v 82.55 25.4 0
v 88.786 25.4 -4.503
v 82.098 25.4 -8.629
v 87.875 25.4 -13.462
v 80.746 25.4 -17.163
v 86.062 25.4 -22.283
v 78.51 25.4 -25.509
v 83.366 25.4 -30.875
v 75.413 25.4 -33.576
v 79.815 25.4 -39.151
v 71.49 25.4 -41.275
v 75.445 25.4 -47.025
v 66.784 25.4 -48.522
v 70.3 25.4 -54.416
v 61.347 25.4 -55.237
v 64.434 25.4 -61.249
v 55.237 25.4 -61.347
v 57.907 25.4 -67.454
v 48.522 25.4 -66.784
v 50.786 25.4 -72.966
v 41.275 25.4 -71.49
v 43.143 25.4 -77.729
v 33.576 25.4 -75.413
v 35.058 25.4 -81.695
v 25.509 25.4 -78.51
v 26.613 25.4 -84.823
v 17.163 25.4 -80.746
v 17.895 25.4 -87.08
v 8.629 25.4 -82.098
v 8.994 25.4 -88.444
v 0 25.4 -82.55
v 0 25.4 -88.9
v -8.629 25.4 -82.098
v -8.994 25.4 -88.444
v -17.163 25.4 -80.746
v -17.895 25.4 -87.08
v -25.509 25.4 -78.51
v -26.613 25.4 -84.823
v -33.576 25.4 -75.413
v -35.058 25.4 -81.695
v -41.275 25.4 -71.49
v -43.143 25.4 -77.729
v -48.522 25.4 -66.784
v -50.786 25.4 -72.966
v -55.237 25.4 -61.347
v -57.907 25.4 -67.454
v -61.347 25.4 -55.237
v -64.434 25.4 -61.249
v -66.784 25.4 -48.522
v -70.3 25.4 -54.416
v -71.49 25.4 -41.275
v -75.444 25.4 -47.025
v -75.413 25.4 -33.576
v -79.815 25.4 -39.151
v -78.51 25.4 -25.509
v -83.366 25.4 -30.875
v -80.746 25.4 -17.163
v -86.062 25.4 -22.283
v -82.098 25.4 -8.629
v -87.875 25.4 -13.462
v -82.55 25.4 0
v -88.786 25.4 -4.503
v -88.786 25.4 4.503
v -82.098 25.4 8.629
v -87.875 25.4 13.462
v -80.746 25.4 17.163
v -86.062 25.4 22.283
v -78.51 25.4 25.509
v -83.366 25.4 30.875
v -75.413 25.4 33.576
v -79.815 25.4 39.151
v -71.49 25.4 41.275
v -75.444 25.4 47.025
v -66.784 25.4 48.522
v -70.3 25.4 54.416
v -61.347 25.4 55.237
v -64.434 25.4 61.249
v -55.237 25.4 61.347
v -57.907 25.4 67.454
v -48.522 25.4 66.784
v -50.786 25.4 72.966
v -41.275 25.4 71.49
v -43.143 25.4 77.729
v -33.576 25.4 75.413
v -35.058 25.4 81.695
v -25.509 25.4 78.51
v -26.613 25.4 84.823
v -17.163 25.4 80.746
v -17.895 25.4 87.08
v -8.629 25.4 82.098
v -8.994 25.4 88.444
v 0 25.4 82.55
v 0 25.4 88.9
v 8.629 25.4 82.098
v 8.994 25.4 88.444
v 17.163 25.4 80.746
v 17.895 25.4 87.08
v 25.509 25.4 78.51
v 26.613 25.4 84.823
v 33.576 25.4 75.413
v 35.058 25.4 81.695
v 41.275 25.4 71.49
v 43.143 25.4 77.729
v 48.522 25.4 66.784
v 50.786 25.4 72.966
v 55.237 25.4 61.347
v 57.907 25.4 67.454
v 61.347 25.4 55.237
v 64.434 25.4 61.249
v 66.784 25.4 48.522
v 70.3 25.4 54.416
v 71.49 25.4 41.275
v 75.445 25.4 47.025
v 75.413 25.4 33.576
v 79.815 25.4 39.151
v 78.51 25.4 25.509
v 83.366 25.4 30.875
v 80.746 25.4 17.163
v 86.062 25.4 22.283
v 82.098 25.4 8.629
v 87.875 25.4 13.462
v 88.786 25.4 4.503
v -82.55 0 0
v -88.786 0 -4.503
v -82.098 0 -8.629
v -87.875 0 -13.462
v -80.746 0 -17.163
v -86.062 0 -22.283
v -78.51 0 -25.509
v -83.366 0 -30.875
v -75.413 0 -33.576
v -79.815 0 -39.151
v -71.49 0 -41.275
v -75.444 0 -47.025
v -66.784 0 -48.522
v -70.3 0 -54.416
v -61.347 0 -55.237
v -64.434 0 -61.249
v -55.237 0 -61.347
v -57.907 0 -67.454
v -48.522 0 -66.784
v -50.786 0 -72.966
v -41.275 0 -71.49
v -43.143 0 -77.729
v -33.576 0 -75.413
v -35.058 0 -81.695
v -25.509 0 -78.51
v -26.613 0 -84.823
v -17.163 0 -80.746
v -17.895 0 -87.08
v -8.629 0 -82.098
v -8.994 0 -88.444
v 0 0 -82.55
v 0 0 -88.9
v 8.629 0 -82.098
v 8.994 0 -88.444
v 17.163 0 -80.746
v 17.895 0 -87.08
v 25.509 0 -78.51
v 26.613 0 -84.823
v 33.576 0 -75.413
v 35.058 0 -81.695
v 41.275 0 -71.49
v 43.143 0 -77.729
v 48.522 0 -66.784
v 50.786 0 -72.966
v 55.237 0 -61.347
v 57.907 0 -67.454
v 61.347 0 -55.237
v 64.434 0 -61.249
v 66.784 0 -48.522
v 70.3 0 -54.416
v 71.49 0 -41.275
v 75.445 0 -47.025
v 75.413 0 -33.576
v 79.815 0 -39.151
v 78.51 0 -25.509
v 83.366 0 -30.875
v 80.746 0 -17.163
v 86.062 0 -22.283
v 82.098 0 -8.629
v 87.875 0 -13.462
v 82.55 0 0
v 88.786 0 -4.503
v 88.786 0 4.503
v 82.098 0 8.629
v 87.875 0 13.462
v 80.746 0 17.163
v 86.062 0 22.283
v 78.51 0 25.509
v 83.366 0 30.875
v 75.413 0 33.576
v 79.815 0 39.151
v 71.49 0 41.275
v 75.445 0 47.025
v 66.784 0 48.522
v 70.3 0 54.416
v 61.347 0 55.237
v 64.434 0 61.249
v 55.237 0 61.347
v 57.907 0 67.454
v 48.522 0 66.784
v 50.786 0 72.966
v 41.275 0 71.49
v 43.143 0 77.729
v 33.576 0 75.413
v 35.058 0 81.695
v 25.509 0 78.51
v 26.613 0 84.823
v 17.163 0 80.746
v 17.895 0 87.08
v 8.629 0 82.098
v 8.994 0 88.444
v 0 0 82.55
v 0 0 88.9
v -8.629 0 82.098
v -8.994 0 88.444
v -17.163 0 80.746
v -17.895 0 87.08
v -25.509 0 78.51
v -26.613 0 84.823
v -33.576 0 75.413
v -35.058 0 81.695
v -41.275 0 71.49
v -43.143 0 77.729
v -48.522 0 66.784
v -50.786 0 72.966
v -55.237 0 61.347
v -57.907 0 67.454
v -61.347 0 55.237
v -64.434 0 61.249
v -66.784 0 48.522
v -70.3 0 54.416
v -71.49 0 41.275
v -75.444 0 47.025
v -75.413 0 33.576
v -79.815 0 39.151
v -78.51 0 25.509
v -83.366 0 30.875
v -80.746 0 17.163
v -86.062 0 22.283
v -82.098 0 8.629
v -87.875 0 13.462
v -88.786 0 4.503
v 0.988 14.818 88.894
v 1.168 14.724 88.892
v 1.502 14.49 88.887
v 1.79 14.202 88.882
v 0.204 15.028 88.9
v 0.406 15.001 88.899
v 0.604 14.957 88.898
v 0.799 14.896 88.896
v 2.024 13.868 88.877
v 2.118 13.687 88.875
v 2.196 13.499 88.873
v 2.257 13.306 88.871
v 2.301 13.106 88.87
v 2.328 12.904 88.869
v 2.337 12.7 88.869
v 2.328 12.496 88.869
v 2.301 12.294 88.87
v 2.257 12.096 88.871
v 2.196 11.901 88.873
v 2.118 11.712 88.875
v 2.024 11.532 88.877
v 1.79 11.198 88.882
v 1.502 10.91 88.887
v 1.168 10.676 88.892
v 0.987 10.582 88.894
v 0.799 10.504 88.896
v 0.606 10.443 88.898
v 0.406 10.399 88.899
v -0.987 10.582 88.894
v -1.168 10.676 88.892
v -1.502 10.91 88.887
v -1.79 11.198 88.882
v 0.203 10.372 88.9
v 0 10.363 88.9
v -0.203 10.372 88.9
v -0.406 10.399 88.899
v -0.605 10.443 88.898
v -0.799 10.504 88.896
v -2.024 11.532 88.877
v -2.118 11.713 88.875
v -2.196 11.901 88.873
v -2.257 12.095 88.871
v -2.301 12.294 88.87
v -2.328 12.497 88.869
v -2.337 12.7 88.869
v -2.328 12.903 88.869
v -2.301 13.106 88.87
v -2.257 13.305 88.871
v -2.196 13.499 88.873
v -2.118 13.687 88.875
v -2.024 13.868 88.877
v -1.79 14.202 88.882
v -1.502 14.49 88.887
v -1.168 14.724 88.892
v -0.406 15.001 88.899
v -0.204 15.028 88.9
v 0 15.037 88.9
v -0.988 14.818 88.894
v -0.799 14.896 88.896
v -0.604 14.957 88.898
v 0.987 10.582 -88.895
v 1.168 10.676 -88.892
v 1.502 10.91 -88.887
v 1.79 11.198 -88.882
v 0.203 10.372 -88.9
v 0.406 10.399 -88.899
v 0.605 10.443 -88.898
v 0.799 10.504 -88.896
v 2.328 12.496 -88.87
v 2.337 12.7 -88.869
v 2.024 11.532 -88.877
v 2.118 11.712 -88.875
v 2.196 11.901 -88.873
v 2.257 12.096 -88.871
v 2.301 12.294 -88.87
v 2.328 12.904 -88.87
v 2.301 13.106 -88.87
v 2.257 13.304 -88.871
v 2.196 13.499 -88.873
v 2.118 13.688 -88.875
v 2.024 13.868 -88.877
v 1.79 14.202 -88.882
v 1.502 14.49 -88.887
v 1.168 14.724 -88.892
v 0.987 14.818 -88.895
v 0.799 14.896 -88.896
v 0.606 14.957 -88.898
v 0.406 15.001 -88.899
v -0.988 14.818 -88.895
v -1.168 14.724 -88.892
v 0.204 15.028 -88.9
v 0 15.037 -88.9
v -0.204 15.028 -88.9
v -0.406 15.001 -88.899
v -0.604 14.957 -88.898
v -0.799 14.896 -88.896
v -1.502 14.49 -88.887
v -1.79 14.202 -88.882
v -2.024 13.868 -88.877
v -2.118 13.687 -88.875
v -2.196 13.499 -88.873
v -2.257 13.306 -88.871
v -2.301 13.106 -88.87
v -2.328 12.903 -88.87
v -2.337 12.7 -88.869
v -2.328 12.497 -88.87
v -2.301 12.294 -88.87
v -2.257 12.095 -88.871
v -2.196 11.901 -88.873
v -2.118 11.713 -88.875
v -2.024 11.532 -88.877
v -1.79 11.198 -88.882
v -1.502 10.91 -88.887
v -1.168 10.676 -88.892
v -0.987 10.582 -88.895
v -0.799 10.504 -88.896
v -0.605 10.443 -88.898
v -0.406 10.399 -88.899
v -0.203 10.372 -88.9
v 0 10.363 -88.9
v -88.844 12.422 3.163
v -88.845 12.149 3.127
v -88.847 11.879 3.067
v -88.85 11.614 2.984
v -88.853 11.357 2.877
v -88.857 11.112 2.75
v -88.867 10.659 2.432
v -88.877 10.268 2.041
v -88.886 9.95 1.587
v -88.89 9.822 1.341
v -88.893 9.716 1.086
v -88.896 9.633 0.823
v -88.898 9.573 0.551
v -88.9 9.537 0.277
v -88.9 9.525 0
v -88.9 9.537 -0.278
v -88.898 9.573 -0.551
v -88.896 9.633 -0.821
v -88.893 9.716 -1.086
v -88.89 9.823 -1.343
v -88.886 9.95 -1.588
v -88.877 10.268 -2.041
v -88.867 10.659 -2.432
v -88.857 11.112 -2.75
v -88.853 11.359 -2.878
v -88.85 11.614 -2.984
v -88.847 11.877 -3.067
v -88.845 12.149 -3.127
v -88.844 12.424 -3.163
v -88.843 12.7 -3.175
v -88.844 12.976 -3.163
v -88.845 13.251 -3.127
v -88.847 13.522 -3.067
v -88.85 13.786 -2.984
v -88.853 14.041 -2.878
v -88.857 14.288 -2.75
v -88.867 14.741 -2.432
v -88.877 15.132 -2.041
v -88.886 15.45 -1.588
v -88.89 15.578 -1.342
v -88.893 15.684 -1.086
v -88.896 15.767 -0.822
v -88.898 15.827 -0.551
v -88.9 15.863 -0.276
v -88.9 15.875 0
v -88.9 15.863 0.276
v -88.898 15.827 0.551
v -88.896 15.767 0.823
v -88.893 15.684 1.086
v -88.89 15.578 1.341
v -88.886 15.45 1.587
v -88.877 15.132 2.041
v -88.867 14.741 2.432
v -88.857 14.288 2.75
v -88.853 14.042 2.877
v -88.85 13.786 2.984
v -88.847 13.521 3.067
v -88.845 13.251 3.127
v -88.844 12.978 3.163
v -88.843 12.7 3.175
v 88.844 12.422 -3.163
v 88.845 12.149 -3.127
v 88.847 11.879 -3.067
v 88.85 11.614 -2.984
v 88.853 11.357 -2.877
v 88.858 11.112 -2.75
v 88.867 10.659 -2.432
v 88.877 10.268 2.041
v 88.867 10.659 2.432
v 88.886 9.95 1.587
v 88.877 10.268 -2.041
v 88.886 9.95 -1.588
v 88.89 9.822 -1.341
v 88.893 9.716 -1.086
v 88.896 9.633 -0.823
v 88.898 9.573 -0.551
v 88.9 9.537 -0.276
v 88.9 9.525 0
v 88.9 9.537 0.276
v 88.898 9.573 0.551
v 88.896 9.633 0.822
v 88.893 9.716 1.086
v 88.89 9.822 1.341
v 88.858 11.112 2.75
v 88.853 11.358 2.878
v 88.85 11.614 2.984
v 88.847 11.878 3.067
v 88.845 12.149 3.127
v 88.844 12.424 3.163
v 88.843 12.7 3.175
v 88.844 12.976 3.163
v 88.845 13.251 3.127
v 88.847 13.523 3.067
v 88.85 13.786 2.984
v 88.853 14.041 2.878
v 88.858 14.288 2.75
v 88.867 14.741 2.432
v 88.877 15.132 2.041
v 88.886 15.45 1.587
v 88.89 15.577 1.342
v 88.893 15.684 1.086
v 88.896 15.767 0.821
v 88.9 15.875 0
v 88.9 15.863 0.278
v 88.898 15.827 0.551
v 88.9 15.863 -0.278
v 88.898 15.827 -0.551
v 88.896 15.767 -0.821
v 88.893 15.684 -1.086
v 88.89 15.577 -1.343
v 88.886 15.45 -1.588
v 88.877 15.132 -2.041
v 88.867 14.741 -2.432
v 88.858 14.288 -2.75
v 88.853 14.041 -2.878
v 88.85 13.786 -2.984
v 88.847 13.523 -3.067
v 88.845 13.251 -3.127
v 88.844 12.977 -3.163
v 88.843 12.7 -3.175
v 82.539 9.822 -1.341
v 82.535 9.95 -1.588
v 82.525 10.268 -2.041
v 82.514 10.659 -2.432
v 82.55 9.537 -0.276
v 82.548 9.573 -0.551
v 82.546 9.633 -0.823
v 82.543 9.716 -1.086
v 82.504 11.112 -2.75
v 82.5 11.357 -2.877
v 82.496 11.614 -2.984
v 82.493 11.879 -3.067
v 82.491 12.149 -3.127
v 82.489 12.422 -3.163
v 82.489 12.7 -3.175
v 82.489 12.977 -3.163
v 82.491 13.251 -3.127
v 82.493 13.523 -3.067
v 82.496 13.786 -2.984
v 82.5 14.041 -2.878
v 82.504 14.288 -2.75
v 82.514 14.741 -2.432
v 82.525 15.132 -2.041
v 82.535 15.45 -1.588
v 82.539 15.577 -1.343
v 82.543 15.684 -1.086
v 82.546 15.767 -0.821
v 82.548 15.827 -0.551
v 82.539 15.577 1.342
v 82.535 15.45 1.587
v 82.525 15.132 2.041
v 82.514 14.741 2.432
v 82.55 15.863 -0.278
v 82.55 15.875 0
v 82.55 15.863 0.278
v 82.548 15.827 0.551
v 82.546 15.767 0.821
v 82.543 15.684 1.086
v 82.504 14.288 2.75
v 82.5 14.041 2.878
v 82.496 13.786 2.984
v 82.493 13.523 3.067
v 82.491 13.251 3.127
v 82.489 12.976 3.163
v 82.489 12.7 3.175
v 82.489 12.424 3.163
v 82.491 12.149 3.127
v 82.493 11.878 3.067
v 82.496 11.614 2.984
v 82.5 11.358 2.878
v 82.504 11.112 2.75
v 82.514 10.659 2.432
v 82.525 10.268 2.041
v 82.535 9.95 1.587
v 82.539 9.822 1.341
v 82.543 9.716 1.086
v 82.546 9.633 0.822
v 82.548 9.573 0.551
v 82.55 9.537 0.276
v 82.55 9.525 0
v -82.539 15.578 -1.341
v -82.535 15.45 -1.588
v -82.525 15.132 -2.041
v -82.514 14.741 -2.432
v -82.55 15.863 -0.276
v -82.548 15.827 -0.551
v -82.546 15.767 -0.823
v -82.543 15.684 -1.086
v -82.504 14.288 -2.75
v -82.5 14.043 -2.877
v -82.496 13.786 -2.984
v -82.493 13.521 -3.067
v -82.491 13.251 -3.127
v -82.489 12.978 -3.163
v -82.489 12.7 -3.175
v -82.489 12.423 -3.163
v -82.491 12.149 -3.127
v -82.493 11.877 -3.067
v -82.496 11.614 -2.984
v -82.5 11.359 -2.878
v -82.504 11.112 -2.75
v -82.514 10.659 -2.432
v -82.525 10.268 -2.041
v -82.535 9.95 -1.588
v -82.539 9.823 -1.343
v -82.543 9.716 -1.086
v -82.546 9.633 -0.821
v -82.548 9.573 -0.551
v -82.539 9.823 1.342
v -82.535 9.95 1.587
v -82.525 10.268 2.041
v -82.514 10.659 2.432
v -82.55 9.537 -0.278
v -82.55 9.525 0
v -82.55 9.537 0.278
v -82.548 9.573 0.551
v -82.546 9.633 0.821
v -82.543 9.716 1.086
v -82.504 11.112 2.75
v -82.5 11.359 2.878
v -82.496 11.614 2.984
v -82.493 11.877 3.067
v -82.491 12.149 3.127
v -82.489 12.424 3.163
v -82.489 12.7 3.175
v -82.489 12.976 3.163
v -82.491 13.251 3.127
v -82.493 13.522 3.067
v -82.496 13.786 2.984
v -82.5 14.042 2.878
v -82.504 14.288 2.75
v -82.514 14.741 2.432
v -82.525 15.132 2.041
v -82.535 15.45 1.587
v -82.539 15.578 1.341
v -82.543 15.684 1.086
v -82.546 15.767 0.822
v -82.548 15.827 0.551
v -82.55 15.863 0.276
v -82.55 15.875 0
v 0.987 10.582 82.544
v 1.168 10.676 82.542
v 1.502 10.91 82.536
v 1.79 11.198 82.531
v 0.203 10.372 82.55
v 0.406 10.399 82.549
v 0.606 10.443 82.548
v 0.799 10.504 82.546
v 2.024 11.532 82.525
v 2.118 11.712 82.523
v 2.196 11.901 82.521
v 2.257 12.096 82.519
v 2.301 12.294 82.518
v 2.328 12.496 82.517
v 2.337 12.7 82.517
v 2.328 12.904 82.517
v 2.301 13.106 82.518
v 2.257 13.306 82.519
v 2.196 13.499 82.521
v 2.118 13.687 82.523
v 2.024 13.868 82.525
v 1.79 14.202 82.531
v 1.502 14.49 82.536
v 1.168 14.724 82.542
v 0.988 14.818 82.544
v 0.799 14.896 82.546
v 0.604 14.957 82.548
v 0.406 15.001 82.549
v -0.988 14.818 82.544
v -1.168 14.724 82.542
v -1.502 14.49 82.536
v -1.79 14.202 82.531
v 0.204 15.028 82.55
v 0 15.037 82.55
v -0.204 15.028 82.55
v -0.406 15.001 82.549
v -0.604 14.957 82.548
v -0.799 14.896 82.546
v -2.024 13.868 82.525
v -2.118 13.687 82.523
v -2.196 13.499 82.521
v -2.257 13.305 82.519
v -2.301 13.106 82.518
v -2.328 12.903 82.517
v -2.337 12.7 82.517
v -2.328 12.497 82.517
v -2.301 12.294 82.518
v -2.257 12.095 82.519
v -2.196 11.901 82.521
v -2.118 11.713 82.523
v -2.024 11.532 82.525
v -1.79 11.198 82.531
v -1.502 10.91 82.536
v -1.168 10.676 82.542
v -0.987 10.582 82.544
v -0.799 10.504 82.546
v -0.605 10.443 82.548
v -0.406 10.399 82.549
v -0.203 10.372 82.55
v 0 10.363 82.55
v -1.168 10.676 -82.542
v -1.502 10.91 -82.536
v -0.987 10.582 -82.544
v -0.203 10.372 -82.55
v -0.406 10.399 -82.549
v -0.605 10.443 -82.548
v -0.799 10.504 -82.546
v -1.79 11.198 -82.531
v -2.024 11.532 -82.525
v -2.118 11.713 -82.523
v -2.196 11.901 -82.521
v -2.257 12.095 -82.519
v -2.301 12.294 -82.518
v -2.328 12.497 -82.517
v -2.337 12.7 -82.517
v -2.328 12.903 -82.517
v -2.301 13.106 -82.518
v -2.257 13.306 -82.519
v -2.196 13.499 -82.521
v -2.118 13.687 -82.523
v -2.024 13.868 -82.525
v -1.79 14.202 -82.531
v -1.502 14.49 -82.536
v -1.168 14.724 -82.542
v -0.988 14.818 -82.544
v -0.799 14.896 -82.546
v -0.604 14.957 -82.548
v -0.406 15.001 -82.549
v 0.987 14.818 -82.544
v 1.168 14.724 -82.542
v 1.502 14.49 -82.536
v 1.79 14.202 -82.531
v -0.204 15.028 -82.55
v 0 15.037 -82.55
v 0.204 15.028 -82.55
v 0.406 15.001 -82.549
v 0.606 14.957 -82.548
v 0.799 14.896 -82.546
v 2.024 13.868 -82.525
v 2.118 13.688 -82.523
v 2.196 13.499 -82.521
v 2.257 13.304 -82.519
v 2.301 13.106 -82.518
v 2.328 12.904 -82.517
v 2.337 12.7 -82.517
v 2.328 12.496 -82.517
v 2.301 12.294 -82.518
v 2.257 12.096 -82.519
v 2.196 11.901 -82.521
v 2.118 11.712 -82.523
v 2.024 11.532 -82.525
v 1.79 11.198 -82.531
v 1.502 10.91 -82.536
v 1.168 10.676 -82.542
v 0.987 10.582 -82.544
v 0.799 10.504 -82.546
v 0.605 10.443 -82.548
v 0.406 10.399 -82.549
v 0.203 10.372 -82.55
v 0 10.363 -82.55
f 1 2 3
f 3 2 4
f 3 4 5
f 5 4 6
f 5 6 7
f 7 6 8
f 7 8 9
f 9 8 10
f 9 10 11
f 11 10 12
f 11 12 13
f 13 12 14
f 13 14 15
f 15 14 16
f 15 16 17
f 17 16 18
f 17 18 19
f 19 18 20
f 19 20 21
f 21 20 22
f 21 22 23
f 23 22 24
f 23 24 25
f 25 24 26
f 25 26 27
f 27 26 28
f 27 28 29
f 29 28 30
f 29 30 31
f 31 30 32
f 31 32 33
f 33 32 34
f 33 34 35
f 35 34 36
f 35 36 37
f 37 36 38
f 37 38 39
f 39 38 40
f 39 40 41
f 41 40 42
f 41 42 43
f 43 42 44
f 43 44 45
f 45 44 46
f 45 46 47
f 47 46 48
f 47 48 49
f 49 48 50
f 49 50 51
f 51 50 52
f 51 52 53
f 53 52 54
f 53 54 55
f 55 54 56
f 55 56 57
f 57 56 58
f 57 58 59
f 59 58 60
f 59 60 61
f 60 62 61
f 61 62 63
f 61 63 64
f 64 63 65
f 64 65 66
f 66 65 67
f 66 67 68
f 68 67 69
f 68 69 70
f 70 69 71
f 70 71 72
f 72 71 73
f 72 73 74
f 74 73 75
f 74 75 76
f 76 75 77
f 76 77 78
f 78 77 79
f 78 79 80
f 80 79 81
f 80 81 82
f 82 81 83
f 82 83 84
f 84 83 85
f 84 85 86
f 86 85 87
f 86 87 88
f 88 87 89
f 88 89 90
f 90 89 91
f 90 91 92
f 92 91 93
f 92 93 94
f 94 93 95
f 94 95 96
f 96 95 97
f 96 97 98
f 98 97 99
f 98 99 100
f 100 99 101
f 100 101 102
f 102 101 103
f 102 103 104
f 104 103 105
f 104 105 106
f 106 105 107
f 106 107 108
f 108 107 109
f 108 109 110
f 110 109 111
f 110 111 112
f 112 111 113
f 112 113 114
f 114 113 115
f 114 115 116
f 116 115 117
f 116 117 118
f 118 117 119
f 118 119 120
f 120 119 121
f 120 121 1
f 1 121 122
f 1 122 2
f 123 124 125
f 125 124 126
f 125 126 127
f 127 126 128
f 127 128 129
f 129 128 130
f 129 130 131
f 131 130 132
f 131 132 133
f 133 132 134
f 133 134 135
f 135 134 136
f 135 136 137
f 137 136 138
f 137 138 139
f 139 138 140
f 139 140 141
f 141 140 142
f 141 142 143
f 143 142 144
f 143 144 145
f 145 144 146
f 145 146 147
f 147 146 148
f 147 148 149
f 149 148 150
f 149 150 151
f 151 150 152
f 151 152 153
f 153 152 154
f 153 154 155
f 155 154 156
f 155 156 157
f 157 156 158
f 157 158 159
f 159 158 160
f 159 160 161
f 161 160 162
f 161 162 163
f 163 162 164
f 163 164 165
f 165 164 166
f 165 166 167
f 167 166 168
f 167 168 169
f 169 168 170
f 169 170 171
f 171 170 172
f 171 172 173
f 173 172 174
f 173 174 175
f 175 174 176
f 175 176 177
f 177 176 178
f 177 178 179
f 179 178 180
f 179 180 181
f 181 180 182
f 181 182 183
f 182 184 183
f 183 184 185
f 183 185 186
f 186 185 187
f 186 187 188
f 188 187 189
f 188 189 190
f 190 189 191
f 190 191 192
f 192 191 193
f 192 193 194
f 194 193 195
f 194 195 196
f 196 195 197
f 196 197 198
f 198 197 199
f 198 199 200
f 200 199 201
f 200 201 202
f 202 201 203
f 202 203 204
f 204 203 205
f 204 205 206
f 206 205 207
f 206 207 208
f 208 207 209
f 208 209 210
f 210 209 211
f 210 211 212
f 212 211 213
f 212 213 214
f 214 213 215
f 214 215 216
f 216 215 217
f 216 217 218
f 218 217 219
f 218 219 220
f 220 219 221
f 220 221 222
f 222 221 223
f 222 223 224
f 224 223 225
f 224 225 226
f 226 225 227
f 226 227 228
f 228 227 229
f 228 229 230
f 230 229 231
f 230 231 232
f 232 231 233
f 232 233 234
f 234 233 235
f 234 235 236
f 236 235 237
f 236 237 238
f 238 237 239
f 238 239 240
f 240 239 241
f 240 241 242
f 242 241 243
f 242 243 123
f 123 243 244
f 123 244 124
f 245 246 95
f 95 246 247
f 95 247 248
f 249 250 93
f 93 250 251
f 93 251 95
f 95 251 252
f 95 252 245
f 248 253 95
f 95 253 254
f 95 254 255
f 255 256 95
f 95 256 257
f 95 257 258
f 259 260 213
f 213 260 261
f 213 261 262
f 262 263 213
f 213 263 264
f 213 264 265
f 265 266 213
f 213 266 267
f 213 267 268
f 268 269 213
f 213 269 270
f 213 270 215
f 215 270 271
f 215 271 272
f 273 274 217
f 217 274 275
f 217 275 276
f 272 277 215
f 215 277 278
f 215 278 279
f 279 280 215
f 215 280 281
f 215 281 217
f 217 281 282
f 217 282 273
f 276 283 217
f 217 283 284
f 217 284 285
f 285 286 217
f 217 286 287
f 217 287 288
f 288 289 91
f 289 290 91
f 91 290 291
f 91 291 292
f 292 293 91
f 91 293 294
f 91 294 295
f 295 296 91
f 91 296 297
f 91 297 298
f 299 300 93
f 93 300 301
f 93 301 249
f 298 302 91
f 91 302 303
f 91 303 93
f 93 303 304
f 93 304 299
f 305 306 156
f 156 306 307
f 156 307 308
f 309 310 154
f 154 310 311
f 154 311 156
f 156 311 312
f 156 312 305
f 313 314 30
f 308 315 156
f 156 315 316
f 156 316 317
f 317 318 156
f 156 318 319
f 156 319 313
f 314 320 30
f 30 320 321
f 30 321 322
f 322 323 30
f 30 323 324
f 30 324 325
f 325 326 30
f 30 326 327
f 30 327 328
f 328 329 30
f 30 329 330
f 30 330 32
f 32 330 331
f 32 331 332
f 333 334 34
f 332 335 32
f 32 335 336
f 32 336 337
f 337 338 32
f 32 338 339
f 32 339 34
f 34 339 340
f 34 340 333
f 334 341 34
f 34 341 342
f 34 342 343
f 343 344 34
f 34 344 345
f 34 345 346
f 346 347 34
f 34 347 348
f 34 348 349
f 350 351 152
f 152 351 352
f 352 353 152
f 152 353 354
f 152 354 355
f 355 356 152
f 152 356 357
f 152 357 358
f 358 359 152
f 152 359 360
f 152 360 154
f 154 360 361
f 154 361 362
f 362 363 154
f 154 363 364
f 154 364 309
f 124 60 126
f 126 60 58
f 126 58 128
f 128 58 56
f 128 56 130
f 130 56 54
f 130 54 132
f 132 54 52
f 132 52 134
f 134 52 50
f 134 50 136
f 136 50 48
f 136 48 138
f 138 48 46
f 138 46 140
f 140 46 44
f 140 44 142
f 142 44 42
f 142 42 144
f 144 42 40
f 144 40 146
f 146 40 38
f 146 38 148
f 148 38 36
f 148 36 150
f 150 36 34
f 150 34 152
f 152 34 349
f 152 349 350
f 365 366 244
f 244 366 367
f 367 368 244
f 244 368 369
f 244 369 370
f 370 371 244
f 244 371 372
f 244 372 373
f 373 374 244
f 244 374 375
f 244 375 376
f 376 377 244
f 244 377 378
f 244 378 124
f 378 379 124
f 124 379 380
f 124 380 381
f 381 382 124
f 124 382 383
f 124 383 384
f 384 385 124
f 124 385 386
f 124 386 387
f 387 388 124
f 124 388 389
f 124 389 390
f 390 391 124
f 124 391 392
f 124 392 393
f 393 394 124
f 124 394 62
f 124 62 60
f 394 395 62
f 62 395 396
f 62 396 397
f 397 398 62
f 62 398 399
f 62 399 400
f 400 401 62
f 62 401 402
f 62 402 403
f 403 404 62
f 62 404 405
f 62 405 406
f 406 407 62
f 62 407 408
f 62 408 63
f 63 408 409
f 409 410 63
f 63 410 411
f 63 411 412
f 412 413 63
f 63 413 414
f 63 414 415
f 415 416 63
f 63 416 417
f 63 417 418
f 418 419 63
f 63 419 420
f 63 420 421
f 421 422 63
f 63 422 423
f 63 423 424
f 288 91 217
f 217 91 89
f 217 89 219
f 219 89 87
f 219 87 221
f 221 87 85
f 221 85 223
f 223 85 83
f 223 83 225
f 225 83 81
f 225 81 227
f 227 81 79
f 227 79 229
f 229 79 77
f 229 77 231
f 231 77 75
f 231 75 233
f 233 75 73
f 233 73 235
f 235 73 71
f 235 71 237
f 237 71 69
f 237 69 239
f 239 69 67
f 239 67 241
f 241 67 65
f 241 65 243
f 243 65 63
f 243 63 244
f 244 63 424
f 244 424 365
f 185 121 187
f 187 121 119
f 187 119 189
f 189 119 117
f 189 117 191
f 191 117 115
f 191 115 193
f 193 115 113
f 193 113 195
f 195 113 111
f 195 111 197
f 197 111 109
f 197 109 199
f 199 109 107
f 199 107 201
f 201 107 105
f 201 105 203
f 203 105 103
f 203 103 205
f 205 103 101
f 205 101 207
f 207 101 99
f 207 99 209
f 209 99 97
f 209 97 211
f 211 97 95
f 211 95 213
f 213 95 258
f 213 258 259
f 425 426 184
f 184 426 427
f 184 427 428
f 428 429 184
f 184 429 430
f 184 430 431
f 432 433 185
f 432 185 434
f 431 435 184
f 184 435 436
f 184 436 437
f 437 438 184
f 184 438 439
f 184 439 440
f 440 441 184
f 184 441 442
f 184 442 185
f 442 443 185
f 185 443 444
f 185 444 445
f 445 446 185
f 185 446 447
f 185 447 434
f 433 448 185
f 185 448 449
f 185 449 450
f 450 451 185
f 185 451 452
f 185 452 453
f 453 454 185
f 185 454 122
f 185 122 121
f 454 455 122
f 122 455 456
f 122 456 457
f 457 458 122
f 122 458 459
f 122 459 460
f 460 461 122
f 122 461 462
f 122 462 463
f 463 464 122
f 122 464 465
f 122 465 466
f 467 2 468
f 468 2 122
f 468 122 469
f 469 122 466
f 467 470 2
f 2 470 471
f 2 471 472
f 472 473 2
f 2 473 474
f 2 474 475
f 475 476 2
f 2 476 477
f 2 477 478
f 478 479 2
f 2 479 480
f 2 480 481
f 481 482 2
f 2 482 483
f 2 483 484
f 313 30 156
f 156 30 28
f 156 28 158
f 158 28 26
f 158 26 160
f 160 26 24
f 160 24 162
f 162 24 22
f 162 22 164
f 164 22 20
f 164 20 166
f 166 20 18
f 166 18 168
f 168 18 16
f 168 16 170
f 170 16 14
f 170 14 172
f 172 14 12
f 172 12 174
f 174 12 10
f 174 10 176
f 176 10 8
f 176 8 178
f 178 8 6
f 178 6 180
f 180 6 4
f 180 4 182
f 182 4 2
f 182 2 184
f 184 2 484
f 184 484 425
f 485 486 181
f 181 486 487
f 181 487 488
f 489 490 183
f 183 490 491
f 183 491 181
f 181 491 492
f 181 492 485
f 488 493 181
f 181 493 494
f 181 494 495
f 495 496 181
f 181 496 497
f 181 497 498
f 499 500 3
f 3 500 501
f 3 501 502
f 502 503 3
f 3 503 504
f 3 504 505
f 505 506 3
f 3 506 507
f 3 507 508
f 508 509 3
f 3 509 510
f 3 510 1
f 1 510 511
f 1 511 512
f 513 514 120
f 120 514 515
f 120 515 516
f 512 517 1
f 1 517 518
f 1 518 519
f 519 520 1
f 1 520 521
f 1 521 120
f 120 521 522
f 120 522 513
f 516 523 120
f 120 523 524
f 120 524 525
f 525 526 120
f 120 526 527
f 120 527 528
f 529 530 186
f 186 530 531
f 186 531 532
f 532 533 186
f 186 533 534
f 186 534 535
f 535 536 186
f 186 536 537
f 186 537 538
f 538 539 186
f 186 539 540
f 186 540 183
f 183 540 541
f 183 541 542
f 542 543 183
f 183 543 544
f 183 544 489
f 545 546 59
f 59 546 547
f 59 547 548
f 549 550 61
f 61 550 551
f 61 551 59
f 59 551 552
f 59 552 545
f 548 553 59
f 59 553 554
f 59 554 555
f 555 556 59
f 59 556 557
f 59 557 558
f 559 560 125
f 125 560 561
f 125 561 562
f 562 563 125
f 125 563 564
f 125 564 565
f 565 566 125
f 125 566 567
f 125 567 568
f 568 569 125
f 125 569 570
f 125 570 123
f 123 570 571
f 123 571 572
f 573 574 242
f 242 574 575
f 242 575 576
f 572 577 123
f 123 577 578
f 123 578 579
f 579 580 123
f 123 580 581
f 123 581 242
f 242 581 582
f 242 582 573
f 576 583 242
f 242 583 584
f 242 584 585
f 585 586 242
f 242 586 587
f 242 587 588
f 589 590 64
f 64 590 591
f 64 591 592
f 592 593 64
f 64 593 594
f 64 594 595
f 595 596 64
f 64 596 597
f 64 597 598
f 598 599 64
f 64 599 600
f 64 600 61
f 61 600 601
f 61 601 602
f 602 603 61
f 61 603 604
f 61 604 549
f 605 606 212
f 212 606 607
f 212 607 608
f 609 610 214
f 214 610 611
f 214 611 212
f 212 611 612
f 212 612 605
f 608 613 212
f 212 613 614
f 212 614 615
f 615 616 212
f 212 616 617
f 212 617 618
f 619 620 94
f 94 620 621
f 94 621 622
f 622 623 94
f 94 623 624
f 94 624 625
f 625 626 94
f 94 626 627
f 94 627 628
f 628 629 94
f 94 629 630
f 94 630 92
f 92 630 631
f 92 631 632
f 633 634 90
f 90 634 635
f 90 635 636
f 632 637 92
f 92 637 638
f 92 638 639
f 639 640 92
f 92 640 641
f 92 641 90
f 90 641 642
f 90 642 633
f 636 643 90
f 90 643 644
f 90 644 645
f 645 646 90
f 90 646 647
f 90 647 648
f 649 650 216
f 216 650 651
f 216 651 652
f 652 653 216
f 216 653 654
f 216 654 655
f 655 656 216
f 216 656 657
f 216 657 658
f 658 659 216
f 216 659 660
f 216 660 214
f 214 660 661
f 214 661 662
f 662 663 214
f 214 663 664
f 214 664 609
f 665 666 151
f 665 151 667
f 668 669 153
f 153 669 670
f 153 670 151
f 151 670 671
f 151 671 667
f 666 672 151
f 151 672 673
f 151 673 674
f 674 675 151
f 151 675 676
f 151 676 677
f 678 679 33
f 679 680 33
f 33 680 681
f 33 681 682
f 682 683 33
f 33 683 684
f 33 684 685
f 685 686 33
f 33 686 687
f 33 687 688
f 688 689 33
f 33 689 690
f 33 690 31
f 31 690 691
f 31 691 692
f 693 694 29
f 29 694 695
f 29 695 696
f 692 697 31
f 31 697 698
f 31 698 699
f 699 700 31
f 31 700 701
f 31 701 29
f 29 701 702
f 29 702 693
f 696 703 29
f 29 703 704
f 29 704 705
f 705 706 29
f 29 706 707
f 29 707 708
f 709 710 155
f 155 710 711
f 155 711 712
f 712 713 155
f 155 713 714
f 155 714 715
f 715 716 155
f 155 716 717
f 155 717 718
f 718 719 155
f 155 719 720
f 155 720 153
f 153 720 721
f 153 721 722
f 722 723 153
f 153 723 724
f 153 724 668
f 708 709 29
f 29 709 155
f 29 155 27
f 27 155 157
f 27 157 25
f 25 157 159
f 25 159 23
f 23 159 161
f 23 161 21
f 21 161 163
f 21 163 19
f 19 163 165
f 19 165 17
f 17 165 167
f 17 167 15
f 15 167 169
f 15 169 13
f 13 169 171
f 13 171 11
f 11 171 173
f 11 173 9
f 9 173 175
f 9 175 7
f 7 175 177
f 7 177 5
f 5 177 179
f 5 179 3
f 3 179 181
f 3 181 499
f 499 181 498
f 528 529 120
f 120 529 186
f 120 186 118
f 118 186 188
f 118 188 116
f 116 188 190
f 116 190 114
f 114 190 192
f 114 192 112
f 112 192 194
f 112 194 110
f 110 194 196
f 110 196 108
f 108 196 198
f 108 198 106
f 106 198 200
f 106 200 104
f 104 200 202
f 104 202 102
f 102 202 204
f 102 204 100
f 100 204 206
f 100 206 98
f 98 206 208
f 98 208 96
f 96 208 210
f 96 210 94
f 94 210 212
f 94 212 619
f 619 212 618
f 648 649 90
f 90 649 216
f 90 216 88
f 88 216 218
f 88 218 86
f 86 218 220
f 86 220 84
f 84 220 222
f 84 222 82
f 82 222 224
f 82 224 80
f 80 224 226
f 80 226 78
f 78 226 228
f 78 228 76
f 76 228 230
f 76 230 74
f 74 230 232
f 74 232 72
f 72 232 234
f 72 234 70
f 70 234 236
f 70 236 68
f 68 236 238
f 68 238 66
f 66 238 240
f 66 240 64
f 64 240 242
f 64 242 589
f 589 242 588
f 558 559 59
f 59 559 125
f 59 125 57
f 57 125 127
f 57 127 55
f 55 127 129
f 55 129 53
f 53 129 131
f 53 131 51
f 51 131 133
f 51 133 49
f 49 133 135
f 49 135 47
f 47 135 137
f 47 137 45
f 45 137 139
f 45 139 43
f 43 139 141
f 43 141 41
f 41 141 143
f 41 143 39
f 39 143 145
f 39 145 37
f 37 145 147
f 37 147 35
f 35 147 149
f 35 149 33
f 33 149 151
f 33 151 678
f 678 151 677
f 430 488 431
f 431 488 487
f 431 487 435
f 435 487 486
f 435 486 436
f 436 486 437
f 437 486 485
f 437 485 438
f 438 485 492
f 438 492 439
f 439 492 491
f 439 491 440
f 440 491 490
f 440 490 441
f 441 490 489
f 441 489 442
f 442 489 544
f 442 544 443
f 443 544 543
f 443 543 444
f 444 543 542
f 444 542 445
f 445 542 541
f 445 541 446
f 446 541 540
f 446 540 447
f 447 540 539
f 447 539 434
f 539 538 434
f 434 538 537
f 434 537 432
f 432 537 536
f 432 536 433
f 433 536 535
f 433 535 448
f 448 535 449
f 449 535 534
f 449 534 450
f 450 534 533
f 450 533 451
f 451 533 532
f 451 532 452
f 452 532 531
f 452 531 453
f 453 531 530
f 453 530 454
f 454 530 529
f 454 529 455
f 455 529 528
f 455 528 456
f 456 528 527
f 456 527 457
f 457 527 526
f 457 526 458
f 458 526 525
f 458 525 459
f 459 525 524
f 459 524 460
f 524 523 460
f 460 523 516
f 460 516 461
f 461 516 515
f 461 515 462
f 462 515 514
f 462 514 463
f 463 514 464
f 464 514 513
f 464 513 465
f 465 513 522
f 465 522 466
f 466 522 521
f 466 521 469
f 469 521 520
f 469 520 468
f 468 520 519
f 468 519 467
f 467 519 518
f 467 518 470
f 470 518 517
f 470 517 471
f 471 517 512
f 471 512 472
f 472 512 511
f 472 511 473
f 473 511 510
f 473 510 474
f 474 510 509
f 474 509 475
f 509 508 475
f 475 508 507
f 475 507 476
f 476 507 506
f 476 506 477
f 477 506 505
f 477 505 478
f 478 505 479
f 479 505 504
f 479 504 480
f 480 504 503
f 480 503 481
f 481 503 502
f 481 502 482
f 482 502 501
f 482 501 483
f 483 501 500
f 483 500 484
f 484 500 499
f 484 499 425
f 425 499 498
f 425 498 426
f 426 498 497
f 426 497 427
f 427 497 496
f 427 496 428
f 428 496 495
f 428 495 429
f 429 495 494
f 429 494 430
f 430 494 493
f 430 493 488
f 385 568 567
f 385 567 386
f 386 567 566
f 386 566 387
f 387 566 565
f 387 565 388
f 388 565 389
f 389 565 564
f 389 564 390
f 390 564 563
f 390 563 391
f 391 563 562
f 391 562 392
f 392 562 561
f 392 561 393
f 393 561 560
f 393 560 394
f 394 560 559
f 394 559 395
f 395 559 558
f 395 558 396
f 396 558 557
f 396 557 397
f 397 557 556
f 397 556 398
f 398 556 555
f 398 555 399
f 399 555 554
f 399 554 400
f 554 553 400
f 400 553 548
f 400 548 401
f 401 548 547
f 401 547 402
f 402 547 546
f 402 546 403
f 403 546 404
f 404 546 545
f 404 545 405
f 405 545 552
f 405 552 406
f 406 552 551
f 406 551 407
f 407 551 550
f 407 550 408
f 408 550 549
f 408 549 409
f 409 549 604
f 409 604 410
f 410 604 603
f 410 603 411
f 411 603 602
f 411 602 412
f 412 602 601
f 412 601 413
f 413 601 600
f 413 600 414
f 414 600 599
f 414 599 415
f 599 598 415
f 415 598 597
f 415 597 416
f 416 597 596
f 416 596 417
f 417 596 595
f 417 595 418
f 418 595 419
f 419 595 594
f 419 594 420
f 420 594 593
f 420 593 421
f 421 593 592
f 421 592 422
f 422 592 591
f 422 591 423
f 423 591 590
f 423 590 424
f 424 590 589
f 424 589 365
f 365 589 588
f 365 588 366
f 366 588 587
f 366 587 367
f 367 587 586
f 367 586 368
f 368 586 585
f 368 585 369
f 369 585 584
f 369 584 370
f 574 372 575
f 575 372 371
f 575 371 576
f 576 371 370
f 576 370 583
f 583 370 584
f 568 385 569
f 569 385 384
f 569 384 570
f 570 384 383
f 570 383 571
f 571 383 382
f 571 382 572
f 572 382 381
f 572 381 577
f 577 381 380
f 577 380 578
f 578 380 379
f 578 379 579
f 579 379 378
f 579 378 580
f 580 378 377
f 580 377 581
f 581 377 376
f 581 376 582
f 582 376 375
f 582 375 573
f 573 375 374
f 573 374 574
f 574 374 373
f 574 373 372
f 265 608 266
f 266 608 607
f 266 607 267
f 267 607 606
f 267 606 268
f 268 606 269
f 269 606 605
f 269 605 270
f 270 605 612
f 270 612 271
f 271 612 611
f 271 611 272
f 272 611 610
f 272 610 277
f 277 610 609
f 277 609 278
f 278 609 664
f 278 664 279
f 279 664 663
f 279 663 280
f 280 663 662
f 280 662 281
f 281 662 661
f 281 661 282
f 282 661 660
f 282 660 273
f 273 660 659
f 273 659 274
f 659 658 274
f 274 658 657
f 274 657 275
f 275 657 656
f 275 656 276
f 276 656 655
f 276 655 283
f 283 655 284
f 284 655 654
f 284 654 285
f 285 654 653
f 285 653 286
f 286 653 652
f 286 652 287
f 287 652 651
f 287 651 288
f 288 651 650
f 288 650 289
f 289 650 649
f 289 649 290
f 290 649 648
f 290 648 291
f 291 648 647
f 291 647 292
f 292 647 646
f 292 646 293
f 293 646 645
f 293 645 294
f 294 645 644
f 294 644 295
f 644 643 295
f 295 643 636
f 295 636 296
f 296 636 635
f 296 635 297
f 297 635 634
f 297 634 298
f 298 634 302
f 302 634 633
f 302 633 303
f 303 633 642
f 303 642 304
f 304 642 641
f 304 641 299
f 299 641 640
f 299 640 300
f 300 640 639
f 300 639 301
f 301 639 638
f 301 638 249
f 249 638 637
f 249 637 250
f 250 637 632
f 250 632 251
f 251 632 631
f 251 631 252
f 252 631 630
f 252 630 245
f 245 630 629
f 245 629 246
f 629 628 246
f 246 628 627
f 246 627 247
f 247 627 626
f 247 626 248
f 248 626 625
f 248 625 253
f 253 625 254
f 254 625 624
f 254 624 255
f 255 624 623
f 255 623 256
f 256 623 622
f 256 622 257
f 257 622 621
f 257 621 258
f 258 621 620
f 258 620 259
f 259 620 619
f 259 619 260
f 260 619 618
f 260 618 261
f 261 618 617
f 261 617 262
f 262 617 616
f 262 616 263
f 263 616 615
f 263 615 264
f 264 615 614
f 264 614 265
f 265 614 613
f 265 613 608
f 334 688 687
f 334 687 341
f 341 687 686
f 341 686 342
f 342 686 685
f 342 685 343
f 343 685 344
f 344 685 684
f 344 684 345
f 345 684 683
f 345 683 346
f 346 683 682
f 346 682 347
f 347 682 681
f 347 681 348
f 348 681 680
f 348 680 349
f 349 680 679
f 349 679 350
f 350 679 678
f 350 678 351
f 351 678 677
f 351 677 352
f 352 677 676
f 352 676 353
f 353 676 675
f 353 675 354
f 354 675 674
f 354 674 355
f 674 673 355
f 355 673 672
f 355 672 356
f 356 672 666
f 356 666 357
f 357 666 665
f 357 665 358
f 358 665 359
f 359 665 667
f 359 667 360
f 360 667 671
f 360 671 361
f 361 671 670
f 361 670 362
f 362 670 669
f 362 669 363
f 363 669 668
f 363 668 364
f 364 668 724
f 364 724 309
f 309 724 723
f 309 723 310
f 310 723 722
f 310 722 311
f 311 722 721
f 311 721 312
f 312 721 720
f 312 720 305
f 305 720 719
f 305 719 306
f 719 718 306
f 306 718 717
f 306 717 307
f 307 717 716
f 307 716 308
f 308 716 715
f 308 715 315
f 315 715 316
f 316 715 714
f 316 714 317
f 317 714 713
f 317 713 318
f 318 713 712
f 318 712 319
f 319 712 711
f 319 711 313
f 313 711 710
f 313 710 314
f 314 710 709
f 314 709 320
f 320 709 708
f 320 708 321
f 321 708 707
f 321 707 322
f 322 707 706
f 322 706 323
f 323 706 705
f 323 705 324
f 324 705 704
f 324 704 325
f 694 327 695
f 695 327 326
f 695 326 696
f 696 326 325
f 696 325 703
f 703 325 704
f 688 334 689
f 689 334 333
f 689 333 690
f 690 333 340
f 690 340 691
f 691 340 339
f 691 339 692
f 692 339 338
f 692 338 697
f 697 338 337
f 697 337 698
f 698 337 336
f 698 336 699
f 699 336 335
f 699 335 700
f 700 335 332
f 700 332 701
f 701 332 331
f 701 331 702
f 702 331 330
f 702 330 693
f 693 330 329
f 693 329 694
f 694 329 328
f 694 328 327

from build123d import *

# Parameters (mm, degrees)
SKETCH1_R               = 88.9
SKETCH1_R_2             = 82.55
BOSS_EXTRUDE1_DEPTH     = 25.4
SKETCH2_R               = 3.175
CUT_EXTRUDE1_DEPTH      = 89.9
CUT_EXTRUDE1_DEPTH_BACK = 89.9
SKETCH3_R               = 2.159
CUT_EXTRUDE2_DEPTH      = 89.9000001
CUT_EXTRUDE2_DEPTH_BACK = 89.9000001


with BuildPart() as part:
    # Sketch1 → Boss-Extrude1 (new body)
    with BuildSketch(Plane(origin=(0, 0, 0), x_dir=(1, 0, 0), z_dir=(0, 1, 0))):
        Circle(SKETCH1_R)
        Circle(SKETCH1_R_2, mode=Mode.SUBTRACT)
    extrude(amount=BOSS_EXTRUDE1_DEPTH)

    # Sketch2 → Cut-Extrude1 (cut, two sides)
    with BuildSketch(Plane(origin=(0, 0, 0), x_dir=(0, 0, -1), z_dir=(1, 0, 0))) as cut_extrude1_sk:
        with Locations((0, 12.7)):
            Circle(SKETCH2_R)
    extrude(amount=CUT_EXTRUDE1_DEPTH, mode=Mode.SUBTRACT)
    extrude(cut_extrude1_sk.sketch, amount=-CUT_EXTRUDE1_DEPTH_BACK, mode=Mode.SUBTRACT)

    # Sketch3 → Cut-Extrude2 (cut, two sides)
    with BuildSketch(Plane.XY) as cut_extrude2_sk:
        with Locations((0, 12.7)):
            Circle(SKETCH3_R)
    extrude(amount=CUT_EXTRUDE2_DEPTH, mode=Mode.SUBTRACT)
    extrude(cut_extrude2_sk.sketch, amount=-CUT_EXTRUDE2_DEPTH_BACK, mode=Mode.SUBTRACT)


solid = part.part
